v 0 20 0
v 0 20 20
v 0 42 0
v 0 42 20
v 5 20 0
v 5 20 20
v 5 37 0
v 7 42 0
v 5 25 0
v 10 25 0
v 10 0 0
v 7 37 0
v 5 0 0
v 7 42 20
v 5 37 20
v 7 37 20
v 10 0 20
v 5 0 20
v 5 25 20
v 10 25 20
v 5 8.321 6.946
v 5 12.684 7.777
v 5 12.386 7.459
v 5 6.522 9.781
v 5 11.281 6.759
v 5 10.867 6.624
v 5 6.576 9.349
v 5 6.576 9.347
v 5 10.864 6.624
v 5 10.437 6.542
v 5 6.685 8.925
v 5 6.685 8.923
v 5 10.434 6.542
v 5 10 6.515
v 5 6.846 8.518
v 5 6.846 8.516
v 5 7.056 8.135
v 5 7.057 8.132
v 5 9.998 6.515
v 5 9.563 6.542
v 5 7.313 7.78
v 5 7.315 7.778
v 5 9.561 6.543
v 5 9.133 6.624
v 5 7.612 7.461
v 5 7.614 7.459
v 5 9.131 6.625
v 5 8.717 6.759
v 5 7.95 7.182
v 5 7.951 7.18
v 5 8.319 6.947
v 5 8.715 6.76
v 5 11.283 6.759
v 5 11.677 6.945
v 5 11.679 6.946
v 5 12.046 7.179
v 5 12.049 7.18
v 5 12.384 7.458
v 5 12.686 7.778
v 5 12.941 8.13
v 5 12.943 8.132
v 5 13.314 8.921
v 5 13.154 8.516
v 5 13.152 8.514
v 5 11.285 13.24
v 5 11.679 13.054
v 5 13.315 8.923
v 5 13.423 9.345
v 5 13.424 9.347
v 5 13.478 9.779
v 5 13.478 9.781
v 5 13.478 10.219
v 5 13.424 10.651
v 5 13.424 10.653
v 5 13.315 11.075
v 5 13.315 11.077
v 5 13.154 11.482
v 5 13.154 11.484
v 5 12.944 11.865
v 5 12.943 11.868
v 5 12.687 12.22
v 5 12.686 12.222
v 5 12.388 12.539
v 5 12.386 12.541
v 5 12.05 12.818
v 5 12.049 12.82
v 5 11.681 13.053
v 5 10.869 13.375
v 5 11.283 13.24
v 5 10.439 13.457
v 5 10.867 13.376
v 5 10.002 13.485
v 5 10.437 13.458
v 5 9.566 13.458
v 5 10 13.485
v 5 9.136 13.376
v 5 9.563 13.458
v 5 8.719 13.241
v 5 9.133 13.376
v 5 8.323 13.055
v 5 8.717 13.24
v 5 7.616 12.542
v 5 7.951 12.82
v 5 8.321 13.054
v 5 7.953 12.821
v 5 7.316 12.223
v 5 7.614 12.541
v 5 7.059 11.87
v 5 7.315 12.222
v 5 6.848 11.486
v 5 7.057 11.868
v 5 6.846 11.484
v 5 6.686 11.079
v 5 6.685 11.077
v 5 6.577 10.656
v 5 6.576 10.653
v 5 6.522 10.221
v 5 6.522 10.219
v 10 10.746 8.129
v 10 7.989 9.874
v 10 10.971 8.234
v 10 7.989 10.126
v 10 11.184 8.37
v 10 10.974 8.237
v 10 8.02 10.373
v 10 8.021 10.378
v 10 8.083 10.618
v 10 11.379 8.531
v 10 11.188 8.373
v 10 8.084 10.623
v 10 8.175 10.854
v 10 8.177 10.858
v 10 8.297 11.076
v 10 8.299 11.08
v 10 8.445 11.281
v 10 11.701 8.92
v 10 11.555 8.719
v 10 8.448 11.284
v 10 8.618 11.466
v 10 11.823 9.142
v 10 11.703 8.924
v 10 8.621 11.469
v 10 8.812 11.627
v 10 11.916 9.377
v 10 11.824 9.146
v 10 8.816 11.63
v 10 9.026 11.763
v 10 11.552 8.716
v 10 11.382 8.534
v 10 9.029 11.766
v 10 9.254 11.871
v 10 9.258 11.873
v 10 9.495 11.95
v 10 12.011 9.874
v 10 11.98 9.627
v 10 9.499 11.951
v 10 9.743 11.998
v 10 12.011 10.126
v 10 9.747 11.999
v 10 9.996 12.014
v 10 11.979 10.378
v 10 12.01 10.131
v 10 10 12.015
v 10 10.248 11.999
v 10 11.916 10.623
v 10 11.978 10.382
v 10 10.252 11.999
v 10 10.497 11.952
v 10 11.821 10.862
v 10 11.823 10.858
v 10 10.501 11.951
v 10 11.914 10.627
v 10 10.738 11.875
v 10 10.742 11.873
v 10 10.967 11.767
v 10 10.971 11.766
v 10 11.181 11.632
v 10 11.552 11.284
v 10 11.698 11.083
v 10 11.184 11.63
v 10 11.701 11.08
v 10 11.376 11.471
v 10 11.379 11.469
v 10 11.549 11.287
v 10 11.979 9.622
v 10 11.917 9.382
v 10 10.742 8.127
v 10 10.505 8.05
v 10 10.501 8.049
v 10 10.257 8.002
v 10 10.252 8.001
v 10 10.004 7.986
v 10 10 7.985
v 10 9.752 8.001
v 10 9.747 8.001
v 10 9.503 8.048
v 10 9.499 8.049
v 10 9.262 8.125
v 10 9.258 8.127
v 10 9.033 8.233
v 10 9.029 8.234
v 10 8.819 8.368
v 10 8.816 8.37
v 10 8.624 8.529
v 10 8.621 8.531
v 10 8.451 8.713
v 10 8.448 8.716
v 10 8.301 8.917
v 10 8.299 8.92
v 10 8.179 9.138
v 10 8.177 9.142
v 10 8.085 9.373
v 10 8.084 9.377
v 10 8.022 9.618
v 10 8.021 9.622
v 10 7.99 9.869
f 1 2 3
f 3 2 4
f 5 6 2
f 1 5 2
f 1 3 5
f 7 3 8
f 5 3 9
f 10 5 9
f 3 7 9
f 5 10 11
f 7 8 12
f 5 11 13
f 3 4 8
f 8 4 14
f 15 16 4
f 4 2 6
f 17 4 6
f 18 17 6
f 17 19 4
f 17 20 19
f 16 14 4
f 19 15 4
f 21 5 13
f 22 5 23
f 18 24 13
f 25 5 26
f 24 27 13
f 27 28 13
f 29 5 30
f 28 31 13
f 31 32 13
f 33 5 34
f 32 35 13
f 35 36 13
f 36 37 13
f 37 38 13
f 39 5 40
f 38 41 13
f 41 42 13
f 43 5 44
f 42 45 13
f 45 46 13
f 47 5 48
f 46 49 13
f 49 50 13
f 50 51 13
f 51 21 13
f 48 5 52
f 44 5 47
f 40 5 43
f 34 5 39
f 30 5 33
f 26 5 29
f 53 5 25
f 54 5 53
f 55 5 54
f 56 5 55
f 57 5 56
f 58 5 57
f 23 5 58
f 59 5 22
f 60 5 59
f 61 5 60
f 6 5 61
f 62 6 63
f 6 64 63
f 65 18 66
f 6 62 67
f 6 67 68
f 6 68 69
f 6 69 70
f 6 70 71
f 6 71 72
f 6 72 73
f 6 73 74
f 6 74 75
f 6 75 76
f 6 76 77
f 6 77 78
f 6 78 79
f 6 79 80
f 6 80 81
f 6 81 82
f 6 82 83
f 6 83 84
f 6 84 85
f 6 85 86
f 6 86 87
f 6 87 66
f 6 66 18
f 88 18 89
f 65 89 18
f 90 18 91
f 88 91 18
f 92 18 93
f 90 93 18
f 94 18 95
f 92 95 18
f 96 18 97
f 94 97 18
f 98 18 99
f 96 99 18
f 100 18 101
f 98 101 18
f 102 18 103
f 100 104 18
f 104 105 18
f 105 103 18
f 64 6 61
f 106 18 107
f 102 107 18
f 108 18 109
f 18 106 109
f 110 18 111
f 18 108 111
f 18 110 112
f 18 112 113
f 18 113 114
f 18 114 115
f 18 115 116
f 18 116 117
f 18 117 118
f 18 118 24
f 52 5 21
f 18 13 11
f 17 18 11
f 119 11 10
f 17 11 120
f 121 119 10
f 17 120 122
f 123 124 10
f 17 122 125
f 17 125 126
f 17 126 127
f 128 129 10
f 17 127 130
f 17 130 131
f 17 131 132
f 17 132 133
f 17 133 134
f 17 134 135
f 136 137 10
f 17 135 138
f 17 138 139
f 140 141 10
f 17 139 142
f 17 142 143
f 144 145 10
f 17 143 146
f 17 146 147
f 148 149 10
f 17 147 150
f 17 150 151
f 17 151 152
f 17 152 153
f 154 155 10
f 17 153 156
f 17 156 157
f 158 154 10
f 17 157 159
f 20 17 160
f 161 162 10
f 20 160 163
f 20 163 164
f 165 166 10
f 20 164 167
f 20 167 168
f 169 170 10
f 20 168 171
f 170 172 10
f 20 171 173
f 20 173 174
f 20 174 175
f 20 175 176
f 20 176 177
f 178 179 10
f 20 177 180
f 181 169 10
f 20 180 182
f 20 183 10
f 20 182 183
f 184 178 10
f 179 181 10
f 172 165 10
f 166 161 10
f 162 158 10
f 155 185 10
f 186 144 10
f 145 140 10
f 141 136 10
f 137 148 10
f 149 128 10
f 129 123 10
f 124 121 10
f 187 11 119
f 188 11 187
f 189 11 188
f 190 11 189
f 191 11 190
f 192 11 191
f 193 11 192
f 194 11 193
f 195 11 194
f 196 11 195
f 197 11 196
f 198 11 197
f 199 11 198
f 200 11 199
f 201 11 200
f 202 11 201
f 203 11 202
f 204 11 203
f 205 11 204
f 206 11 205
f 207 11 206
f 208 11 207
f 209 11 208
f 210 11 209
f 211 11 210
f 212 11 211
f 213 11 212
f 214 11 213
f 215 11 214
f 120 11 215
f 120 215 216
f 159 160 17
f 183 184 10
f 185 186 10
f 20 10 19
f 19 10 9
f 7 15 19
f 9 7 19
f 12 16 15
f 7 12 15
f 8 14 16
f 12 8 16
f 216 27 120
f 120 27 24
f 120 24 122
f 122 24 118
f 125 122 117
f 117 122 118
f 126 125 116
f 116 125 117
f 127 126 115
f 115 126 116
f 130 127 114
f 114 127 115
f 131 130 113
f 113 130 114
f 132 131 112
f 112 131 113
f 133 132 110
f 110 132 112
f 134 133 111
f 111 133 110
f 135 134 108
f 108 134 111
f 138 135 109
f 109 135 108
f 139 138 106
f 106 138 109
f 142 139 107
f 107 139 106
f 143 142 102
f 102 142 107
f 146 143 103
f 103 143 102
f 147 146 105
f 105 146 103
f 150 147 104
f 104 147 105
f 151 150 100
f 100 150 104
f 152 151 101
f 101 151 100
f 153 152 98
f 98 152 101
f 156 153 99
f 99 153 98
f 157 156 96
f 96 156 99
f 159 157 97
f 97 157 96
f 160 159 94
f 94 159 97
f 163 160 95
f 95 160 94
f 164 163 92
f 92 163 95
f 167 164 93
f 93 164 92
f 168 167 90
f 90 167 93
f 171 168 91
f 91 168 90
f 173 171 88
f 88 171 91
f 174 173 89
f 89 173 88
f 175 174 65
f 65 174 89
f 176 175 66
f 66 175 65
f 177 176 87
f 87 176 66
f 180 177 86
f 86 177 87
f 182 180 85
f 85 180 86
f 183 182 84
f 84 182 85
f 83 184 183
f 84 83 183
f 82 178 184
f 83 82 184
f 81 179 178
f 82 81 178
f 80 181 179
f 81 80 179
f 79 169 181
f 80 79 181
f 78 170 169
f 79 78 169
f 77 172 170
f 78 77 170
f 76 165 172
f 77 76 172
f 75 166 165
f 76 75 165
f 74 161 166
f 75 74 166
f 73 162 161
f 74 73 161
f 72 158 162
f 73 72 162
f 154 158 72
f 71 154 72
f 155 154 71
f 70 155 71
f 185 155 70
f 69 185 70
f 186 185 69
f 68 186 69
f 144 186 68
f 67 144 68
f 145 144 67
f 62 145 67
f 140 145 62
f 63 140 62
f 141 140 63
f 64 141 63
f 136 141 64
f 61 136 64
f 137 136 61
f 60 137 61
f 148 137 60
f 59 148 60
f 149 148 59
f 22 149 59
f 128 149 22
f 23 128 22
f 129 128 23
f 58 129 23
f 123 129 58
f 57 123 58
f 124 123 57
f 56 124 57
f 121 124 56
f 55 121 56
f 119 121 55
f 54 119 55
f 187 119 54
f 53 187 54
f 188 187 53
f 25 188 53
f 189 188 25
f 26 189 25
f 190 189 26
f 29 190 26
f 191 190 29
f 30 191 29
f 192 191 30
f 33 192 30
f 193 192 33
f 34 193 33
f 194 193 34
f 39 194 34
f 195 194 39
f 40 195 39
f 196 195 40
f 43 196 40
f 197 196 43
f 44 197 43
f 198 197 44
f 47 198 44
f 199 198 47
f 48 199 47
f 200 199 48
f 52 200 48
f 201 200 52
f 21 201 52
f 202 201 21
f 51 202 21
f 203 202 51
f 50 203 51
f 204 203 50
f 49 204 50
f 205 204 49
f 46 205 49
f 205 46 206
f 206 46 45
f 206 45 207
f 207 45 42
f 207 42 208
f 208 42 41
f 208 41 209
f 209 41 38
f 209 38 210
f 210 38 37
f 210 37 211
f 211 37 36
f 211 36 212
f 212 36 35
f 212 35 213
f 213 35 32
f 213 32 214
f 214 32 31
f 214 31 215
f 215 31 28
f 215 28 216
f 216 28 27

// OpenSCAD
$fn=50;

difference(){
	cube([10,42,20]);
	cube([5,20,20]);
	translate([5,25,0]) cube([5,12,20]);
	translate([7,37,0]) cube([3,5,20]);
	translate([10.05,10,10]) rotate([0,-90,0]) cylinder(h=5.1, d1=4, d2=7);
}
